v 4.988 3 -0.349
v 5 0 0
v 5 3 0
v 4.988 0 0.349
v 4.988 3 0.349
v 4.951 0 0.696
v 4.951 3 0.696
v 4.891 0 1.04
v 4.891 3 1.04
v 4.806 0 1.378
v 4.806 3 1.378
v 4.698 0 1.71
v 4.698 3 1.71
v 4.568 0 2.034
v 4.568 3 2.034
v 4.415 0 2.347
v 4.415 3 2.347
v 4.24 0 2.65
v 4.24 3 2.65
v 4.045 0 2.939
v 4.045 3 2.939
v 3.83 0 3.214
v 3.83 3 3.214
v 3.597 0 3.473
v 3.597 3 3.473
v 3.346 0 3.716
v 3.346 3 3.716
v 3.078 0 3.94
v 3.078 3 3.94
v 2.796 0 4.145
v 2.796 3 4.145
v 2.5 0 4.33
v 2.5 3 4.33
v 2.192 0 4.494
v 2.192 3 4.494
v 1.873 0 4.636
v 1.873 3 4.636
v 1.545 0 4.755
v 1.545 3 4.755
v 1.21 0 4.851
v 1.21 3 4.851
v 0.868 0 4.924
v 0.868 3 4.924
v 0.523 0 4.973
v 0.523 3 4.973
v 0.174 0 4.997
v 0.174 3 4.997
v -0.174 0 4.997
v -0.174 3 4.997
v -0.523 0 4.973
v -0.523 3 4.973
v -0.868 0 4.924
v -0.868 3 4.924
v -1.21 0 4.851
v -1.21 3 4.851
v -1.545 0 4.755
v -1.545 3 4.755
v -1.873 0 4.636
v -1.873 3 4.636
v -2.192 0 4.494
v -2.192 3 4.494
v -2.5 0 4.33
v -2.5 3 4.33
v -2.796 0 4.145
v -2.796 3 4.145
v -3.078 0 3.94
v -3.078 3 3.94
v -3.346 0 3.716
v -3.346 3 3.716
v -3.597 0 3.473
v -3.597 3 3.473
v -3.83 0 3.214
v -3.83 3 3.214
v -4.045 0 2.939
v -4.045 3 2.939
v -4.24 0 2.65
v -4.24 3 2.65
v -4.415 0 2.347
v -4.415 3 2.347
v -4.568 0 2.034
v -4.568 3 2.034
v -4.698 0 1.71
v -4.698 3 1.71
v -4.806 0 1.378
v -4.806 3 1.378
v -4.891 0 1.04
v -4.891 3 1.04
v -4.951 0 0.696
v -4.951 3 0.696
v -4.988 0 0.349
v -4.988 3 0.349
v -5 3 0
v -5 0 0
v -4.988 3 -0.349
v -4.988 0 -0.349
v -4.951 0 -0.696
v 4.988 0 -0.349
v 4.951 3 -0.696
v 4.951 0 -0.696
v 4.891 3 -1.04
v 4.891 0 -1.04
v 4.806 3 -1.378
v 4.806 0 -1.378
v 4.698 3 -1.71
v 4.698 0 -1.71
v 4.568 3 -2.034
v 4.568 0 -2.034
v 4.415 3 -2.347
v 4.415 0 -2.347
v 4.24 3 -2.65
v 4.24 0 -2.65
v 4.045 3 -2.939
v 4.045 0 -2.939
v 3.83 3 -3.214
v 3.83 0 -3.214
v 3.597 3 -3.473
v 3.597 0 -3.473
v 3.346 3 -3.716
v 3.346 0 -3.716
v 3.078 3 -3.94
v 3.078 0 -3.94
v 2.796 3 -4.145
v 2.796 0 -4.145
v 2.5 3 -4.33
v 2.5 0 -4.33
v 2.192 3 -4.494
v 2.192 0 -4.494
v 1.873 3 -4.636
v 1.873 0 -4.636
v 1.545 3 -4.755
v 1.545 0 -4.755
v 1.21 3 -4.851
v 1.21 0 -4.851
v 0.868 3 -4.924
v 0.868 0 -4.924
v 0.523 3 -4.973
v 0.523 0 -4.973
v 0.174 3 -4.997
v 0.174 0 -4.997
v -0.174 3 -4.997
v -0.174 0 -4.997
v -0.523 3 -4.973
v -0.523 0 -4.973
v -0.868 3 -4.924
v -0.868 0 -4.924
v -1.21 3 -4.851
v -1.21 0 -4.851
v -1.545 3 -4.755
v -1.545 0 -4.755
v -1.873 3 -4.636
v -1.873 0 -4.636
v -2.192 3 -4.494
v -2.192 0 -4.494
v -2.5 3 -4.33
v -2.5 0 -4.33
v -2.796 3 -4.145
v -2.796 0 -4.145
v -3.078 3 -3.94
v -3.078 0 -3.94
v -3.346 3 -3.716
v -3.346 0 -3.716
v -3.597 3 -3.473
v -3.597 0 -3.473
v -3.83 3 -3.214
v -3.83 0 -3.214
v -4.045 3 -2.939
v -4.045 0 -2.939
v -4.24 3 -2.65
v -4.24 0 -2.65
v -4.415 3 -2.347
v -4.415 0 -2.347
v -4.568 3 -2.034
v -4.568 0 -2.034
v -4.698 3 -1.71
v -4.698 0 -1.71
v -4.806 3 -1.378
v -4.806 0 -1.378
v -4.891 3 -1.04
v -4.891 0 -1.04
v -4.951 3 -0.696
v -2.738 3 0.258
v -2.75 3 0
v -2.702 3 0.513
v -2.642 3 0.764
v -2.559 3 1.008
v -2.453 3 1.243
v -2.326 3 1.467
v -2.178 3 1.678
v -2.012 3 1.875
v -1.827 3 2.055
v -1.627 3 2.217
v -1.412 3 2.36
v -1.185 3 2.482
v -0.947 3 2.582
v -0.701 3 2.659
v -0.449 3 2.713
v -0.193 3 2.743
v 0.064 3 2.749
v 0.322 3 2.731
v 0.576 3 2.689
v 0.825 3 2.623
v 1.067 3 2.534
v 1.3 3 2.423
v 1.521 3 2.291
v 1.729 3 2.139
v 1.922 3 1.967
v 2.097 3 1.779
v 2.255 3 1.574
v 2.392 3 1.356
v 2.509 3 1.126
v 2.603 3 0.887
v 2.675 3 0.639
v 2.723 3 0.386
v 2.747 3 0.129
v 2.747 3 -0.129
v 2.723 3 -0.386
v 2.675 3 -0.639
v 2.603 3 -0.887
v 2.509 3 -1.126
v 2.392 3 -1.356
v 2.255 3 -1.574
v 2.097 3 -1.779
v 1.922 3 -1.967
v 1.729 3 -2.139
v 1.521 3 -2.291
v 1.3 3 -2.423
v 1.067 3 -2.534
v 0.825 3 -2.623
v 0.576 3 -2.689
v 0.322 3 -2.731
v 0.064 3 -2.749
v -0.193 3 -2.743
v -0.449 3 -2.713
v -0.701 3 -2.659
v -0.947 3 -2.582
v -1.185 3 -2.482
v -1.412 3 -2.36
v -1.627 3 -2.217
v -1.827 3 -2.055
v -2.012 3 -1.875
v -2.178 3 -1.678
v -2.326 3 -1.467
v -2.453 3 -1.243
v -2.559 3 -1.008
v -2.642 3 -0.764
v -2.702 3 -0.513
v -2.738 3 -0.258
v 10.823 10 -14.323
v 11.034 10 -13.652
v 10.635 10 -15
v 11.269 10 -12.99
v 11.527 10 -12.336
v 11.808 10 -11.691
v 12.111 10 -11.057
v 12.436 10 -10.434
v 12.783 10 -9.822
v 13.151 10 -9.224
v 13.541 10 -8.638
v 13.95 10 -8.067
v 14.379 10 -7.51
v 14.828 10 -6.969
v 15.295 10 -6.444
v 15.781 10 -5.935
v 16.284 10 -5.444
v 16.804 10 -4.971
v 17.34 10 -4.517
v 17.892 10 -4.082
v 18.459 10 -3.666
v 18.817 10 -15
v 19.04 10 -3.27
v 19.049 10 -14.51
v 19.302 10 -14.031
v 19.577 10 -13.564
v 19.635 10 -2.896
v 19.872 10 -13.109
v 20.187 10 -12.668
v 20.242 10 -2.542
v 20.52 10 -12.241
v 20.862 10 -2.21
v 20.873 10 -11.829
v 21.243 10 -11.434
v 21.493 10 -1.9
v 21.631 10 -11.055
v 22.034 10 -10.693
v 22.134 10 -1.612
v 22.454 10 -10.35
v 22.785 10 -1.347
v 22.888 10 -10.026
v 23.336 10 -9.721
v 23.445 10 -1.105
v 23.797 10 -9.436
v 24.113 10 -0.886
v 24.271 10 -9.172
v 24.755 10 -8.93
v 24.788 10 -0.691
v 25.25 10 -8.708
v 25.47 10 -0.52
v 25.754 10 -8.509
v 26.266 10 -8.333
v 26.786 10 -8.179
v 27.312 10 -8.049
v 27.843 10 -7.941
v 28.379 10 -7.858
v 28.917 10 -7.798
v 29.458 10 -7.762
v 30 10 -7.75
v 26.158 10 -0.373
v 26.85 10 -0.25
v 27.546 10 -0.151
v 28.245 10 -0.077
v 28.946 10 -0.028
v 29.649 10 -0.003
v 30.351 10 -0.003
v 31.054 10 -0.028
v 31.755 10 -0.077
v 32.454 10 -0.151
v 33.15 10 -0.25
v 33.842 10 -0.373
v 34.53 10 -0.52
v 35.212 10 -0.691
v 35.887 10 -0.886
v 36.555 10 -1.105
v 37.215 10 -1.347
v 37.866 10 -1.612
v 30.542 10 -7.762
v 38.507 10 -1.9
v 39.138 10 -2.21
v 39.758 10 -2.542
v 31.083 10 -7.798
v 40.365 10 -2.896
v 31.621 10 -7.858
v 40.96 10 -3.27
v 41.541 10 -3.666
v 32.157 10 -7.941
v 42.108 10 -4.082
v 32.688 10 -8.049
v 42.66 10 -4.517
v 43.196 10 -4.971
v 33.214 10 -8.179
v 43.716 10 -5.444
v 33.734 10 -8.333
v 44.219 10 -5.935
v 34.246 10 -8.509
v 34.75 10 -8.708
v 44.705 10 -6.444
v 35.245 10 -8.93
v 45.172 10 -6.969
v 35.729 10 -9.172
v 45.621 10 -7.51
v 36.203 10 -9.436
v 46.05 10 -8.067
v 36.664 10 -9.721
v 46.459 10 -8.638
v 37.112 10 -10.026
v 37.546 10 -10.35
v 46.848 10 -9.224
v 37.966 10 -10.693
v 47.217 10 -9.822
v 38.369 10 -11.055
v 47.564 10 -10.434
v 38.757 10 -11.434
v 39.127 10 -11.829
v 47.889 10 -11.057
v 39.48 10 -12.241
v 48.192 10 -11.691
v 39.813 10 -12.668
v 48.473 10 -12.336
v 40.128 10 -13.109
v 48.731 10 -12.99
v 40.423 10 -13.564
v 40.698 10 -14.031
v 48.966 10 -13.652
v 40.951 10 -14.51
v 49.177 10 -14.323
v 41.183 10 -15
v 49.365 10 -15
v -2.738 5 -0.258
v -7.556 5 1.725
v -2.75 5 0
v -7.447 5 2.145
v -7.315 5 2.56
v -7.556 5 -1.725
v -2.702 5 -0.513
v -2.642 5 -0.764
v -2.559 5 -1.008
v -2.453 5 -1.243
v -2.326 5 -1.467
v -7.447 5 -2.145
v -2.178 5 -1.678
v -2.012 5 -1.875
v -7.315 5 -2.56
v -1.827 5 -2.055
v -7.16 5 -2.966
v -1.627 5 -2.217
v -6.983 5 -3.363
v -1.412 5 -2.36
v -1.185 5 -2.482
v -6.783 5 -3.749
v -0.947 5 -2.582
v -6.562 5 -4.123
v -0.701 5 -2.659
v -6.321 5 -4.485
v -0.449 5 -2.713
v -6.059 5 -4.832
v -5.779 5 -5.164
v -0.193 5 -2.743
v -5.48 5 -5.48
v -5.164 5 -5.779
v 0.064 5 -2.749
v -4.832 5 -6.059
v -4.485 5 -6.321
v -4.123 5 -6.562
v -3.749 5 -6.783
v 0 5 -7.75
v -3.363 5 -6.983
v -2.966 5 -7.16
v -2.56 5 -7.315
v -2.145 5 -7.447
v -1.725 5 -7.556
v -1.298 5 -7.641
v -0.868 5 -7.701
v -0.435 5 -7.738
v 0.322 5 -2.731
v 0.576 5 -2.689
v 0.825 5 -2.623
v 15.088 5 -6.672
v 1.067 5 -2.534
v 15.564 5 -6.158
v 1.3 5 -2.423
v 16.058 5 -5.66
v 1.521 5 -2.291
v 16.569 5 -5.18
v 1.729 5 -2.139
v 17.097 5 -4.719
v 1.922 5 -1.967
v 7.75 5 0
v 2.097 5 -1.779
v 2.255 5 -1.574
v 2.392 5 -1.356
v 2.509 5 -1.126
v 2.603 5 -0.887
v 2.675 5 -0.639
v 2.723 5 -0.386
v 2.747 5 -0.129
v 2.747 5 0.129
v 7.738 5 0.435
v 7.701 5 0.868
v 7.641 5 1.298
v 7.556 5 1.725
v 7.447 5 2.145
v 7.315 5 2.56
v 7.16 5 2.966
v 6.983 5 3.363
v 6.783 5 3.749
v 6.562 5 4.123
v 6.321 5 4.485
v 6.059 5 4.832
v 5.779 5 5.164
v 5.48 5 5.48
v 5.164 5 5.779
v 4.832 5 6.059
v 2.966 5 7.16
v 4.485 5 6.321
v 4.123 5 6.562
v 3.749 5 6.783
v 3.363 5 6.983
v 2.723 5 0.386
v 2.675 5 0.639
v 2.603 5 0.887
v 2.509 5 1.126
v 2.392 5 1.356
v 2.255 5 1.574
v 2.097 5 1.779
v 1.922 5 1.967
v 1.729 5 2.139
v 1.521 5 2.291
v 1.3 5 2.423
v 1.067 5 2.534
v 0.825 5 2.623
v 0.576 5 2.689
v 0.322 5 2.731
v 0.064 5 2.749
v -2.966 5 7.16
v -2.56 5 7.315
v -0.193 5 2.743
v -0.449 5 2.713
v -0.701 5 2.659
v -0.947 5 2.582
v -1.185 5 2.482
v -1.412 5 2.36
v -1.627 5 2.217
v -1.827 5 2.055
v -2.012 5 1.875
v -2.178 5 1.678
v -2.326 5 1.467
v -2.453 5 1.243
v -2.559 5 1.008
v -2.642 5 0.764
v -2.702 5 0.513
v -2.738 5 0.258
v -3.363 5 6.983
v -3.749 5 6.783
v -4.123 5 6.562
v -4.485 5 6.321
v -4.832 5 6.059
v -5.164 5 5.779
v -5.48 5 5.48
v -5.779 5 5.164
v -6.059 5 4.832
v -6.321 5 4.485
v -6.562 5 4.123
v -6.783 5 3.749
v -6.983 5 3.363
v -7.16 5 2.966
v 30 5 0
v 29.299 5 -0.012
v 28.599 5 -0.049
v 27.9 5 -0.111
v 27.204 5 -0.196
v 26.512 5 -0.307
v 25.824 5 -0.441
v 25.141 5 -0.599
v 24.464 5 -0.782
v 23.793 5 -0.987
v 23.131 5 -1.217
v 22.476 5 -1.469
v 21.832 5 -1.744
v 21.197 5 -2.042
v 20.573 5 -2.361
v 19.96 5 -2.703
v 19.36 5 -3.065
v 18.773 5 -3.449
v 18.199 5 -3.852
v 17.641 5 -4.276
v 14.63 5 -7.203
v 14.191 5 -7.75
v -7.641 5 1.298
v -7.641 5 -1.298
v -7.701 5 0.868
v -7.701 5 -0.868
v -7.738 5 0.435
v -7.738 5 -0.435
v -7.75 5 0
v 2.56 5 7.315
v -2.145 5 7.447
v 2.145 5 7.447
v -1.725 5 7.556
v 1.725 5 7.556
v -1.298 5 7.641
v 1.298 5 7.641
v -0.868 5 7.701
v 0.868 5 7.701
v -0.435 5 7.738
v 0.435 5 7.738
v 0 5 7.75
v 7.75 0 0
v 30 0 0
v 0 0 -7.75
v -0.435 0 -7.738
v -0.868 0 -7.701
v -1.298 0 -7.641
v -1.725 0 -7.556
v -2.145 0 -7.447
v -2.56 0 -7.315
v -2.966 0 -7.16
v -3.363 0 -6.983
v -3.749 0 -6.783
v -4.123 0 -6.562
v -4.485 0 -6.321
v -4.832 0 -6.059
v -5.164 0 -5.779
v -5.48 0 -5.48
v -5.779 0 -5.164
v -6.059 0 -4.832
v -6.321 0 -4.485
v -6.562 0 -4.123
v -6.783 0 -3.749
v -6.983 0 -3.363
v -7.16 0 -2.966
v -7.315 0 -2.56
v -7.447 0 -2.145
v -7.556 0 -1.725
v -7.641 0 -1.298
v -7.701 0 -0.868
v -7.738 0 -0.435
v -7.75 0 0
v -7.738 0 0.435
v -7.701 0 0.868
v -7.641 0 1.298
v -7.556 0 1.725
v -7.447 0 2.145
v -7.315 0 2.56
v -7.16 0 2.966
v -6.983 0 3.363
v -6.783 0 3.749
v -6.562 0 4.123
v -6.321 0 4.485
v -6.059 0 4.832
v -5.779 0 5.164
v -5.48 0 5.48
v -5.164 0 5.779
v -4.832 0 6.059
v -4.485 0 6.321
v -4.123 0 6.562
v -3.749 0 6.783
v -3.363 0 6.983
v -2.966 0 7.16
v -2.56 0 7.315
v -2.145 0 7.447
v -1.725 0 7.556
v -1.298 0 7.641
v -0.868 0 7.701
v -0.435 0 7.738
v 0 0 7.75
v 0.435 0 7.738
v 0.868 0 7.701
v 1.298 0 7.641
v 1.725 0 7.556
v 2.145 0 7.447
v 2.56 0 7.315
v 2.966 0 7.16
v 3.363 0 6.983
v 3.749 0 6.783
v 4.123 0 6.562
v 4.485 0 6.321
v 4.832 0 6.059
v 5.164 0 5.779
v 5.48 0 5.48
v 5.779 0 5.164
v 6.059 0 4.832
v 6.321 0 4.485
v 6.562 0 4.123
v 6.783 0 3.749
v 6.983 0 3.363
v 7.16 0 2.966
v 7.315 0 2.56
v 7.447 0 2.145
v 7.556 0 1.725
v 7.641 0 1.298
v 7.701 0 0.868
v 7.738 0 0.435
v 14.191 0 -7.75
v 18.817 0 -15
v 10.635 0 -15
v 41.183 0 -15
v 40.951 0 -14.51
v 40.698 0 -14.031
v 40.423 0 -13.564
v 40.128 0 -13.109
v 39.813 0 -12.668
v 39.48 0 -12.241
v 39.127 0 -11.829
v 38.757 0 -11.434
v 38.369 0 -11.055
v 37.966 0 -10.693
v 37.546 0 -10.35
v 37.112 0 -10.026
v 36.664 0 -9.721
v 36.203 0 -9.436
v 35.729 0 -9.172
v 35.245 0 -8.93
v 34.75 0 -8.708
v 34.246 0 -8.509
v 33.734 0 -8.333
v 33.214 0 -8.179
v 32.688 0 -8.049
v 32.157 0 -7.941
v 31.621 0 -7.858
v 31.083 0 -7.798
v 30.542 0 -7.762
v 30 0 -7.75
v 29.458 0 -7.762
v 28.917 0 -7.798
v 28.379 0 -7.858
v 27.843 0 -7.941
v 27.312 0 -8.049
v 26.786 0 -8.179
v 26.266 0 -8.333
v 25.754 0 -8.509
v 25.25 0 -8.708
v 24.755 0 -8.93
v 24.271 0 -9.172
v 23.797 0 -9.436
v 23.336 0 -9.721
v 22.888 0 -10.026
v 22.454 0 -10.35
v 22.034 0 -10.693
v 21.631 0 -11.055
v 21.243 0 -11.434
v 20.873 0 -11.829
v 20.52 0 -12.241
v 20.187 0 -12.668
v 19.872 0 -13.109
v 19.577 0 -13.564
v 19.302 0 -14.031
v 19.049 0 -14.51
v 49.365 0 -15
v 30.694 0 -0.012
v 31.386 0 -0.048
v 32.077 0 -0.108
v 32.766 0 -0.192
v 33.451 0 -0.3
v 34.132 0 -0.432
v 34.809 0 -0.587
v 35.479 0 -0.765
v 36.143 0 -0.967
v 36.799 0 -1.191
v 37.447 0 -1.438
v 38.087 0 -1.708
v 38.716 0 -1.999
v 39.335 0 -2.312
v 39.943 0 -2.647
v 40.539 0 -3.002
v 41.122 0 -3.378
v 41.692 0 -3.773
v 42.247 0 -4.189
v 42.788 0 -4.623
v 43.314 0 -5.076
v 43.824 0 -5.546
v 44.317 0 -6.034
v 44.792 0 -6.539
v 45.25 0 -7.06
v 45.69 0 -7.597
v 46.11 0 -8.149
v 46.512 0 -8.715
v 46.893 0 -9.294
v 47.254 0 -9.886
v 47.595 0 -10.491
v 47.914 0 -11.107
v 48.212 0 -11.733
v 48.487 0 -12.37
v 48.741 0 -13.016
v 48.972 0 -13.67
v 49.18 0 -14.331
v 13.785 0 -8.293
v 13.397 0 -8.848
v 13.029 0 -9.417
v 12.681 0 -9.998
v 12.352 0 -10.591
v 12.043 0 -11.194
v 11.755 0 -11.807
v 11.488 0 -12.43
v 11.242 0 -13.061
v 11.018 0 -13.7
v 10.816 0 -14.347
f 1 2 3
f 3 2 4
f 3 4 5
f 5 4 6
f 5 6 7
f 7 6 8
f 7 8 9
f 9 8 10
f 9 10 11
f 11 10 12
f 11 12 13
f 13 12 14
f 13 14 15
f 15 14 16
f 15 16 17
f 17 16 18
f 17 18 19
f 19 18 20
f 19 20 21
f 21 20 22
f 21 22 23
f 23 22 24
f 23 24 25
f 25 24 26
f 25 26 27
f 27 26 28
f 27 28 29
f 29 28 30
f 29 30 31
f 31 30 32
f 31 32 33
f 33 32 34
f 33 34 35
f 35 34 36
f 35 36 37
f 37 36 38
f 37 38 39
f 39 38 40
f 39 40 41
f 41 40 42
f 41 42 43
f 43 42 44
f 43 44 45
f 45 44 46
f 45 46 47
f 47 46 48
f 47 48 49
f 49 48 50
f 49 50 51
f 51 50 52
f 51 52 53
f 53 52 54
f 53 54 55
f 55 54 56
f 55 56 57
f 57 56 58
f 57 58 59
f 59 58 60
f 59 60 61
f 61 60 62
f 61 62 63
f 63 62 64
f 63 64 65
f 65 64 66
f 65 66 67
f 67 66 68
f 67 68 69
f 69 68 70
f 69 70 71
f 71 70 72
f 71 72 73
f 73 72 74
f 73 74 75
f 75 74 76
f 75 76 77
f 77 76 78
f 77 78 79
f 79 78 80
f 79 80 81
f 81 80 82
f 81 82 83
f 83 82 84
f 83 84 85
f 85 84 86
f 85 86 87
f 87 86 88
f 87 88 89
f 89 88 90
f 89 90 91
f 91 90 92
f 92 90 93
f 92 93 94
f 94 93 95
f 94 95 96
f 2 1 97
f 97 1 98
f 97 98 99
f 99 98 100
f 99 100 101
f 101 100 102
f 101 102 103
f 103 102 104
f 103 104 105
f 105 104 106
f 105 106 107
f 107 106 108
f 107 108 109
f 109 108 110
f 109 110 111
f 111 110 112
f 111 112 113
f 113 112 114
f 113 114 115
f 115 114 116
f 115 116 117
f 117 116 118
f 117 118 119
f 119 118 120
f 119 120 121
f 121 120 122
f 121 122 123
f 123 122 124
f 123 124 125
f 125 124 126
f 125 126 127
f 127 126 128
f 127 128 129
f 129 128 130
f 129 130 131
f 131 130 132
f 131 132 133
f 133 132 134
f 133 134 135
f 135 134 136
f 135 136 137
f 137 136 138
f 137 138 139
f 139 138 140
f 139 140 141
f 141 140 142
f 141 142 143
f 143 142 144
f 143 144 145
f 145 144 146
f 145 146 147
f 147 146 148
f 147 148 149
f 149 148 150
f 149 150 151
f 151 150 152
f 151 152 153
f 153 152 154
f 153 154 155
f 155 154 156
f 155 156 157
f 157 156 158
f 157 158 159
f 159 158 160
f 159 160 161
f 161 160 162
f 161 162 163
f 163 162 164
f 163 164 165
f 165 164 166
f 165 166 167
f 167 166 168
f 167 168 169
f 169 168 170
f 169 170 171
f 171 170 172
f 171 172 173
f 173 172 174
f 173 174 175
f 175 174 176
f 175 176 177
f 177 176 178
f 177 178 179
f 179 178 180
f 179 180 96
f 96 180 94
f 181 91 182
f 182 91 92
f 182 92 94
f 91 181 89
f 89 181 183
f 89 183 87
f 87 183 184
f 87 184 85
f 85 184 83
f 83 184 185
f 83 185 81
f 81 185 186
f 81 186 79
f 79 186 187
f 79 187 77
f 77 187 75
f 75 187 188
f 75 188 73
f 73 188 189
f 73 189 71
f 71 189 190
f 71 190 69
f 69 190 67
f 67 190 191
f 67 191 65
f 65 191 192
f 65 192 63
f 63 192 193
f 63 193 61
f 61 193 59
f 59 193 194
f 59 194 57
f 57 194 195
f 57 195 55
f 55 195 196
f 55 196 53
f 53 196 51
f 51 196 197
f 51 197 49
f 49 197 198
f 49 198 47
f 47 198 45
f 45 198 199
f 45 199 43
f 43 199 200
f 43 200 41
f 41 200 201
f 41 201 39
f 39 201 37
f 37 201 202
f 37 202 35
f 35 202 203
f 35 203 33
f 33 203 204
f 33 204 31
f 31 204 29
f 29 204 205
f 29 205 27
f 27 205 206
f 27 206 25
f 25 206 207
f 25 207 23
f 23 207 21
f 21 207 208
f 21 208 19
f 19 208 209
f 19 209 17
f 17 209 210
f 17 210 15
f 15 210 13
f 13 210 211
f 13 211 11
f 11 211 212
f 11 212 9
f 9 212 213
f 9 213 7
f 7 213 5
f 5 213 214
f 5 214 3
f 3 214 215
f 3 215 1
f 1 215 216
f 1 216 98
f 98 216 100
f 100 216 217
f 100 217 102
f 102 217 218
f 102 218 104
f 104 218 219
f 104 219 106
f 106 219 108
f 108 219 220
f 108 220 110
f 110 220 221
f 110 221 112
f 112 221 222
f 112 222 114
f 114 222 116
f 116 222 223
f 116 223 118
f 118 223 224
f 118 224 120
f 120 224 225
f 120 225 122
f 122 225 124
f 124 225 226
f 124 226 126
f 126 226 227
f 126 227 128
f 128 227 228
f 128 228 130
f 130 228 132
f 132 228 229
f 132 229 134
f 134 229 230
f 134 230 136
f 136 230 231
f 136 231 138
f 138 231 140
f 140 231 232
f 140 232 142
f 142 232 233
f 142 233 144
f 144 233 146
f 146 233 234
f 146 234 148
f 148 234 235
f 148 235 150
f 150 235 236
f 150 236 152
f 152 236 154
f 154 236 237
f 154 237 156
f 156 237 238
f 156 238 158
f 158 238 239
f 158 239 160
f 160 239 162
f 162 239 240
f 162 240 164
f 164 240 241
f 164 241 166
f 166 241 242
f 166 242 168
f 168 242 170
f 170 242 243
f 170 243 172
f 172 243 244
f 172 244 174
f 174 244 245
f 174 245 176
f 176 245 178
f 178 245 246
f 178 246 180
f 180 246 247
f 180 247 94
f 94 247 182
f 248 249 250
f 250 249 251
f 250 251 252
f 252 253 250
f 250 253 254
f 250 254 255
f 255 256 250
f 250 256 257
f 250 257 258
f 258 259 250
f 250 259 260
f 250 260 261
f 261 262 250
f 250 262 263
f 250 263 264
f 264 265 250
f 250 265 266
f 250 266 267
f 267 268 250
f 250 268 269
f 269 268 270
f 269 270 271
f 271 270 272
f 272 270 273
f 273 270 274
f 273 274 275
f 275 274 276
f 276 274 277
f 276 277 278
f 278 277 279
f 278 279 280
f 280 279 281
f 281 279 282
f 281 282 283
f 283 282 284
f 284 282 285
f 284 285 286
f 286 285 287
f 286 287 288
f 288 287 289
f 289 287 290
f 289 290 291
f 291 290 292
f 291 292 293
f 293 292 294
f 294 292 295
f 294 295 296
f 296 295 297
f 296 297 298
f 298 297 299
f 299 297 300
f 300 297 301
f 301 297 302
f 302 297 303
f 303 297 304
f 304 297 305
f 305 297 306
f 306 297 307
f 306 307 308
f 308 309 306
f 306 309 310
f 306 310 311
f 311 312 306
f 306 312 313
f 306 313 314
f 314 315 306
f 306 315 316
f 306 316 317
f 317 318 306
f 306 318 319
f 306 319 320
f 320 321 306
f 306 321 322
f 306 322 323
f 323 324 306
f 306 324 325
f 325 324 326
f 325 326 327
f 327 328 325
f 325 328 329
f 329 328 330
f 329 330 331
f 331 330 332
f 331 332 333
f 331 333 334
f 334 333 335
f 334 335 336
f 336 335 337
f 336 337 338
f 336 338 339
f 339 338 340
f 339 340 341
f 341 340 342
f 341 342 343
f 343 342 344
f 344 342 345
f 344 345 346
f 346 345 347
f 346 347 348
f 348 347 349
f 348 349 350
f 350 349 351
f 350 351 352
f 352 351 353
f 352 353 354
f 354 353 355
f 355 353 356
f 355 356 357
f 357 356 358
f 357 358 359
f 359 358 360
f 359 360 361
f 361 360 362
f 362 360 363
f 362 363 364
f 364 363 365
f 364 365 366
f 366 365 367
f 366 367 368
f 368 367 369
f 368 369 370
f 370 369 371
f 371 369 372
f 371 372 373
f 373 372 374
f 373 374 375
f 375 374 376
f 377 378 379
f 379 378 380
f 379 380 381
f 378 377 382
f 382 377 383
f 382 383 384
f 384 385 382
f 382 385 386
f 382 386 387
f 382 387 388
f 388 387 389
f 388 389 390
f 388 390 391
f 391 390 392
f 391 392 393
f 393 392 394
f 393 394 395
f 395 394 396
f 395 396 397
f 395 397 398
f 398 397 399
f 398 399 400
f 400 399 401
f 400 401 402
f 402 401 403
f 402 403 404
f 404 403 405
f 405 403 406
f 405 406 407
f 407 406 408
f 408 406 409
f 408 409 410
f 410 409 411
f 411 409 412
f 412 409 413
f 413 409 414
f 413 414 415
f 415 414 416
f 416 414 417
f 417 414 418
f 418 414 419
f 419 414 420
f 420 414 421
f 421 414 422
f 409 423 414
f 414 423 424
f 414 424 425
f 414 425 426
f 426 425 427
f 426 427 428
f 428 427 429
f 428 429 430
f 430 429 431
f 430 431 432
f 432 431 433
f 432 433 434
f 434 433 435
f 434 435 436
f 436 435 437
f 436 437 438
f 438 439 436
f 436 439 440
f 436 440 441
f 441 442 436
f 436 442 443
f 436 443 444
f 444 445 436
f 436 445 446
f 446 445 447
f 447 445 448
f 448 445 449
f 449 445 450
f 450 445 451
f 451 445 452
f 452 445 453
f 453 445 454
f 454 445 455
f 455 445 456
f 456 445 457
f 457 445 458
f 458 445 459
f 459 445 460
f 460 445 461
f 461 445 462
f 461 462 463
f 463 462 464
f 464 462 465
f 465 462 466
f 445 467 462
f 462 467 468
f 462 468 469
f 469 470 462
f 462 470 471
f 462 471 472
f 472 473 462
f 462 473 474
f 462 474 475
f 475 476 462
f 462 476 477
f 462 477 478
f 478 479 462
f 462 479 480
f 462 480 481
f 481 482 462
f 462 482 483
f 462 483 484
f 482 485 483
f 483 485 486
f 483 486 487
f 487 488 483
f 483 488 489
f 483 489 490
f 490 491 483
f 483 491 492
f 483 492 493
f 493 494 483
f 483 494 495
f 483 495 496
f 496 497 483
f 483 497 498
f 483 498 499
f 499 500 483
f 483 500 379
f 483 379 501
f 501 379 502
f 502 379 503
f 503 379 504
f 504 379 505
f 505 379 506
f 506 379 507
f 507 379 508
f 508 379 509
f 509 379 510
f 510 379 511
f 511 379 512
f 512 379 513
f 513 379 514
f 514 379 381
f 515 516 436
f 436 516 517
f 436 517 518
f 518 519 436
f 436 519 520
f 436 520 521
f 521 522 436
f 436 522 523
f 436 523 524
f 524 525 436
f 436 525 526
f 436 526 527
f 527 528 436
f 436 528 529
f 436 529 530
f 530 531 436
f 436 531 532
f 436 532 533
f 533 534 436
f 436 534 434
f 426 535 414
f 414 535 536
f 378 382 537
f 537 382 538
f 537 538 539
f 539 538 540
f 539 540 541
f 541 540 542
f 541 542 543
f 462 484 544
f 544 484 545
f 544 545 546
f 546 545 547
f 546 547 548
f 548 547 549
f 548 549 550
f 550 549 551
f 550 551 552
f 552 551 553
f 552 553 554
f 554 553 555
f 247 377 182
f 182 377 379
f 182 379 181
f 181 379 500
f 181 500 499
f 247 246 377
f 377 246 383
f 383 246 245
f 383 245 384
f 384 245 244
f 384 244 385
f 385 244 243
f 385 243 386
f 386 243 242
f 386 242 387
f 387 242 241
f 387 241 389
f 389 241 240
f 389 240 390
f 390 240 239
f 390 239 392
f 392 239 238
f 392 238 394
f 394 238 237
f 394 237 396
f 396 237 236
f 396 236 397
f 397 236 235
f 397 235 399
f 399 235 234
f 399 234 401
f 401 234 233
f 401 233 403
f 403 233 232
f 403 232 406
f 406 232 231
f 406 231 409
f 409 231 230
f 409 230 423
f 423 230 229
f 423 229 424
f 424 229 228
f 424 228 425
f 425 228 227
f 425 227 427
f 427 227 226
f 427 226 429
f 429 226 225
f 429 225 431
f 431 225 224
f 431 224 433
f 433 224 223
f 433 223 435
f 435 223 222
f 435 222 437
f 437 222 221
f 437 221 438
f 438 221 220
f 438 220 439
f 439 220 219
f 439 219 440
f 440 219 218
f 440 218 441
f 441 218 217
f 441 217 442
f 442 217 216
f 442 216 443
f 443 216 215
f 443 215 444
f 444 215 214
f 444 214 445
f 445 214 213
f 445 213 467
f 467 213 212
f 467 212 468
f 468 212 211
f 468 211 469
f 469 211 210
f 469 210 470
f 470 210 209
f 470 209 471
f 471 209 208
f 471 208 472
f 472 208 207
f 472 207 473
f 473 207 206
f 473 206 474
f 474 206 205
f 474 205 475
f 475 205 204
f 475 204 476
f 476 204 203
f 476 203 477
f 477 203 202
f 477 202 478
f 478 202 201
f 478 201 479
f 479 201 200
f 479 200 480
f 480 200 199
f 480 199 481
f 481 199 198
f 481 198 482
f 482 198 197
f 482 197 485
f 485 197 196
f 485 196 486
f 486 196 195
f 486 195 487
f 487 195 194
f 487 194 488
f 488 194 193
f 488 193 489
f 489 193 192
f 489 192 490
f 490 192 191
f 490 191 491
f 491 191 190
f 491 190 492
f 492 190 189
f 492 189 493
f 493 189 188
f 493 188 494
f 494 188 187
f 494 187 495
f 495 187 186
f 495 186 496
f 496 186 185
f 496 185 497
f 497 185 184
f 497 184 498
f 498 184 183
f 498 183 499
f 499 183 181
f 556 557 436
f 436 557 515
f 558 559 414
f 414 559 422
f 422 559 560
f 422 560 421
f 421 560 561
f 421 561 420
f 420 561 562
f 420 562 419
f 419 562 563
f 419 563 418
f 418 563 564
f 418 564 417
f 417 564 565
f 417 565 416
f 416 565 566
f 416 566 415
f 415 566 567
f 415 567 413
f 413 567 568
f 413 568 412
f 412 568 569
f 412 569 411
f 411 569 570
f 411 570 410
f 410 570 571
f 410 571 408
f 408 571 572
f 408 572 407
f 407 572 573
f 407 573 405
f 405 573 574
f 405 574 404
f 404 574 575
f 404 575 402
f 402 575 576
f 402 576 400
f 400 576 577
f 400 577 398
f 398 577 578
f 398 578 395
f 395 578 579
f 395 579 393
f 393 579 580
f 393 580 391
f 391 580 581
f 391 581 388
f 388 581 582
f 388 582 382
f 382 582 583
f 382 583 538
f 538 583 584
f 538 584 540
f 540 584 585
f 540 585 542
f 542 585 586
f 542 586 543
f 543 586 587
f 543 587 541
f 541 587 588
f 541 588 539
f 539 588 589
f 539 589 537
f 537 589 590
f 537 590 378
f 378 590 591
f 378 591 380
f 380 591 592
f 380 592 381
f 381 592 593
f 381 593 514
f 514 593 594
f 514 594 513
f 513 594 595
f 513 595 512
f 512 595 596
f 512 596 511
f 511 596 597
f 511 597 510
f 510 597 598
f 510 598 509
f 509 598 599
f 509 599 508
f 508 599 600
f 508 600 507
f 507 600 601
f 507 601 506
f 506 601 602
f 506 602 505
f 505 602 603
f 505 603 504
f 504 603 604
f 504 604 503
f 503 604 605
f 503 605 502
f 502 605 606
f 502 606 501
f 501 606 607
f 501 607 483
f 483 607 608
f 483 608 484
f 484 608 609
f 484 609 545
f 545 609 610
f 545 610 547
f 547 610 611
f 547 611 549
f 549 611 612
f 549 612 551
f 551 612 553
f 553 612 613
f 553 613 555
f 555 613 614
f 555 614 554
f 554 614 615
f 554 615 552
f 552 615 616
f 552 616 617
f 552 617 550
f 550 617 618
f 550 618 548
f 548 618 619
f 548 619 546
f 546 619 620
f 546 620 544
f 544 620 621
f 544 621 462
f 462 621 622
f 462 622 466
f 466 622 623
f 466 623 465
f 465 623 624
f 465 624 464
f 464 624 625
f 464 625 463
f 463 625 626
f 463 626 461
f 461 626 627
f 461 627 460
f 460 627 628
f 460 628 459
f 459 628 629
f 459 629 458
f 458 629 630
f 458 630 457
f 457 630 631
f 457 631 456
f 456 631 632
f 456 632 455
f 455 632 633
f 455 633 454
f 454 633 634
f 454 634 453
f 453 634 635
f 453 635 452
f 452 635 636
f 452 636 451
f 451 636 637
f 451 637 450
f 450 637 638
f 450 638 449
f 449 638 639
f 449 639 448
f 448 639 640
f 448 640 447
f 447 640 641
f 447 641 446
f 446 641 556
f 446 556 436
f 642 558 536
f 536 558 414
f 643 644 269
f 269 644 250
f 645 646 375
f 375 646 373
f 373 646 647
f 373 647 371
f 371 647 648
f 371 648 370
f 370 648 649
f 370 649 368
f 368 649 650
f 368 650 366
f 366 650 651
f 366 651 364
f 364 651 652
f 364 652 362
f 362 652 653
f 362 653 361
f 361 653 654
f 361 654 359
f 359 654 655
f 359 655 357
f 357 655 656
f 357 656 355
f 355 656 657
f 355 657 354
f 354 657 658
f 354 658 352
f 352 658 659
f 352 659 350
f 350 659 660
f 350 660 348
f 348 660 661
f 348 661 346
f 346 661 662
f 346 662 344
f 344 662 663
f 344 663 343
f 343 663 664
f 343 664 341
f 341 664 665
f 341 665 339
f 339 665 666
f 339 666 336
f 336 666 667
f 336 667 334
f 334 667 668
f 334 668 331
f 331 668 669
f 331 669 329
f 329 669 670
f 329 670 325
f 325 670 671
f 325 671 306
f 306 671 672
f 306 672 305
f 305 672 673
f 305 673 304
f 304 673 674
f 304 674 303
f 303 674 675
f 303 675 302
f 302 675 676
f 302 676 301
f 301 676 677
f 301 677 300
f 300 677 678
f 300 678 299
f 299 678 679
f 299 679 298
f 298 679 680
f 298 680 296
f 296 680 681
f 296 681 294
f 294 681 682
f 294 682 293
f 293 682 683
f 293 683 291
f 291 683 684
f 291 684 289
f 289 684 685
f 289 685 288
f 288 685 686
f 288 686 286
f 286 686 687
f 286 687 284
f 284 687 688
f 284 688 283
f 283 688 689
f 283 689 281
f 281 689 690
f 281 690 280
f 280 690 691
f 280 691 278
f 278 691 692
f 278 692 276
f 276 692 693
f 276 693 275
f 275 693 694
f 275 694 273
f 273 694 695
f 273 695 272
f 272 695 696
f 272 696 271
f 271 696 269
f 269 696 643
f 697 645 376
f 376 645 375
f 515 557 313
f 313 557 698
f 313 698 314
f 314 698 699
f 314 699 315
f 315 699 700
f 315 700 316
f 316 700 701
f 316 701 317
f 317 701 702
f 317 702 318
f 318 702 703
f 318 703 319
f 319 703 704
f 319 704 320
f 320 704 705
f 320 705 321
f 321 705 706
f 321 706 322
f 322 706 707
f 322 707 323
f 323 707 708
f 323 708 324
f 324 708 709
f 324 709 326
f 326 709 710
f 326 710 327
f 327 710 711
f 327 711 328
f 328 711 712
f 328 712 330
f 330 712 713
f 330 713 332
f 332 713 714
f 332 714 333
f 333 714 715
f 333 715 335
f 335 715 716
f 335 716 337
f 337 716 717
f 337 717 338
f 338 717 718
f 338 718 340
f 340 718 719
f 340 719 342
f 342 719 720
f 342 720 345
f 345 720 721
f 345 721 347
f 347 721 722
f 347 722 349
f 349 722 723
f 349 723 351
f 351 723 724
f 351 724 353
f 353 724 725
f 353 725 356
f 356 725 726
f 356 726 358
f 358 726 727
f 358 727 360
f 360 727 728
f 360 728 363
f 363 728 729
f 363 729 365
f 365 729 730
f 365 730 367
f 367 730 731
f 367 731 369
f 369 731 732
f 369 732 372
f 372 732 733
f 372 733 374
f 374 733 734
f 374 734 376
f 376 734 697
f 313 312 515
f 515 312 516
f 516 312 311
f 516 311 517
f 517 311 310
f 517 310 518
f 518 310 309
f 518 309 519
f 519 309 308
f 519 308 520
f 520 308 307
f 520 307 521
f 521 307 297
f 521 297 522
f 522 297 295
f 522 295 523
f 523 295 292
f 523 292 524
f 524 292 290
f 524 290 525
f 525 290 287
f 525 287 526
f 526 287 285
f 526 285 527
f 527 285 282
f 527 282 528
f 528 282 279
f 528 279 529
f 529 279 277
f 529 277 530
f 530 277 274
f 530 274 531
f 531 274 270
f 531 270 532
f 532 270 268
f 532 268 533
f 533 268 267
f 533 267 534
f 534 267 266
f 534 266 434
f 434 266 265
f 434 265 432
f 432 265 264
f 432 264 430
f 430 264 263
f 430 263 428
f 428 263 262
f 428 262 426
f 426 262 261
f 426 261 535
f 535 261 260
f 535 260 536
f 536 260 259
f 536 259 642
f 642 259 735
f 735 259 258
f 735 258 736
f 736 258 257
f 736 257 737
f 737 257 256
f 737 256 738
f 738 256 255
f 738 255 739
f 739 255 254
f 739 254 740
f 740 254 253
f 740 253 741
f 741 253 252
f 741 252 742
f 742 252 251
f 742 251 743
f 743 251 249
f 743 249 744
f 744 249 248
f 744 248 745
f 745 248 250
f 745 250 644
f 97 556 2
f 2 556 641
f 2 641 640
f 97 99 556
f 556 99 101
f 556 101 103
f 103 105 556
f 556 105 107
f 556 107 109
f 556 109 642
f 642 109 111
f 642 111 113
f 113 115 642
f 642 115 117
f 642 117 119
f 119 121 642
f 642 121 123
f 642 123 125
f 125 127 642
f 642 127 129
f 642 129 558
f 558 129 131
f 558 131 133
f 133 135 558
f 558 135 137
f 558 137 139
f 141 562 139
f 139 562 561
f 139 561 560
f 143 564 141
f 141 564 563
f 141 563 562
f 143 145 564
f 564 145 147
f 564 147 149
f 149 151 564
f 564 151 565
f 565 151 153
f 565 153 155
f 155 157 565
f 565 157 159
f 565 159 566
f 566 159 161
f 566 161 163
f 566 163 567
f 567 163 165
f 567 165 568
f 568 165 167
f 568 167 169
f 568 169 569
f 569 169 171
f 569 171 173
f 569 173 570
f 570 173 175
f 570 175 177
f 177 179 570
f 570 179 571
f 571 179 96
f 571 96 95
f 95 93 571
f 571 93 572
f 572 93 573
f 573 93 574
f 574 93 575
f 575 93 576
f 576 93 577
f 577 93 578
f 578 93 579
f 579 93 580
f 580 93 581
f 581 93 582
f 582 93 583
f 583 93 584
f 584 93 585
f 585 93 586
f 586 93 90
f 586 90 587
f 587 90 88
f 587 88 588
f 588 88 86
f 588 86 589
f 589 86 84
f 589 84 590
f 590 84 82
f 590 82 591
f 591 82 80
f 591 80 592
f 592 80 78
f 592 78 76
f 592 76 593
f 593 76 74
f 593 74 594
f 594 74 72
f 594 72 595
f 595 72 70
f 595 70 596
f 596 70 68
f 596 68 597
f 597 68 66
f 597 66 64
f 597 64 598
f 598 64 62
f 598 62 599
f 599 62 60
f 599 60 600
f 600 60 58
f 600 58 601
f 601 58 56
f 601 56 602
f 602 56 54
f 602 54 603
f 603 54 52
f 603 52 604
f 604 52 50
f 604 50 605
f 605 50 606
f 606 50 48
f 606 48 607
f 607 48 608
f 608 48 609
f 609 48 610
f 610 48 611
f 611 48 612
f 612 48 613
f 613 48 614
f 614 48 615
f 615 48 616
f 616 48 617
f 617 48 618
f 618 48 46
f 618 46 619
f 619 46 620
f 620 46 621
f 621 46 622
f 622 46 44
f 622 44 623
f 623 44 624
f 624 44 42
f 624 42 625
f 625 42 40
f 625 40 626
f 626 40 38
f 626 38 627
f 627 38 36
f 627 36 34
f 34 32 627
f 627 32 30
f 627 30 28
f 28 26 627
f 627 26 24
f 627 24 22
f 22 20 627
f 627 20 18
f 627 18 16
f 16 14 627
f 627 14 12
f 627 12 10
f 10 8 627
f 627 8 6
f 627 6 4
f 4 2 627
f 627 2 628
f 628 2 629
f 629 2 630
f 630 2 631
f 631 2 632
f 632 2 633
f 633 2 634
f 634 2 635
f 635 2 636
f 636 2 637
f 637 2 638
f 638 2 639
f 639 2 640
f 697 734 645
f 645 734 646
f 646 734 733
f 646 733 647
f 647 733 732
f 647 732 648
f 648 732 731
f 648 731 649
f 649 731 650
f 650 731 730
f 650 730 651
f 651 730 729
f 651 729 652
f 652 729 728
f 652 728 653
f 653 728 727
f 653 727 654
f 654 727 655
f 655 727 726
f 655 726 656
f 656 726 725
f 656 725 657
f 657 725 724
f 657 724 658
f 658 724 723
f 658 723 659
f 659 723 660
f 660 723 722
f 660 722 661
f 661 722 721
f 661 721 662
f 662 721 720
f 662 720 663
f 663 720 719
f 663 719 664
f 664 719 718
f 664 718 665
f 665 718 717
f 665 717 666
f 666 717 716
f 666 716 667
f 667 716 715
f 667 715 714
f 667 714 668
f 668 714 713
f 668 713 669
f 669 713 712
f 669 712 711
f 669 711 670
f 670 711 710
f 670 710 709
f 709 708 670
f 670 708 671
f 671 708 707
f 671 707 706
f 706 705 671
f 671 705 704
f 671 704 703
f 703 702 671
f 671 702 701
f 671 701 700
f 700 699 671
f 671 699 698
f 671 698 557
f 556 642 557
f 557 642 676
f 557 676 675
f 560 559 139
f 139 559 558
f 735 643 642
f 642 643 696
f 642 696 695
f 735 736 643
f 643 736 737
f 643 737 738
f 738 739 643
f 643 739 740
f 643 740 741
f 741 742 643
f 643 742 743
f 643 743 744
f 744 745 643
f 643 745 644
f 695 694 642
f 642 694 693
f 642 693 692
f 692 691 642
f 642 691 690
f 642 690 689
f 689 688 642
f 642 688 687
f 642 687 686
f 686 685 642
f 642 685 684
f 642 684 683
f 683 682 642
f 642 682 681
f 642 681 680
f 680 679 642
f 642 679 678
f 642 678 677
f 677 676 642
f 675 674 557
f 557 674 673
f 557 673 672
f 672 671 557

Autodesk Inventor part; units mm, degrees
ref_plane "YZ Plane" through (0, 0, 0) normal (1, 0, 0) x (0, 1, 0)
ref_plane "XZ Plane" through (0, 0, 0) normal (0, 1, 0) x (-1, 0, 0)
ref_plane "XY Plane" through (0, 0, 0) normal (0, 0, 1) x (1, 0, 0)
sketch "Sketch1" plane through (0, 0, 0) normal (0, 1, 0) x (-1, 0, 0)
  circle A0 centre (0, 0) radius 2.75
  arc A1 (0, -7.75) -> (-7.75, 0) centre (0, 0) ccw
  line L0 (0, 0) -> (-30, 0)
  line L1 (0, -7.75) -> (-14.1906, -7.75)
  line L2 (-30, 0) -> (-30, -20) construction
  arc A2 (-18.8169, -15) -> (-41.1831, -15) centre (-30, -20) ccw
  line L3 (-30, 0) -> (-30, -15) construction
  line L4 (-41.1831, -15) -> (-49.3649, -15)
  line L5 (-18.8169, -15) -> (-10.6351, -15)
  arc A3 (-10.6351, -15) -> (-14.1906, -7.75) centre (-30, -20) ccw
  arc A4 (-30, 0) -> (-49.3649, -15) centre (-30, -20) ccw
  dimension "d0" = 5.5
  dimension "d1" = 5
  dimension "d2" = 30
  dimension "d3" = 20
  dimension "d4" = 15
extrude "Extrusion1" add sketch "Sketch1" along normal blind 5
sketch "Sketch2" plane through (0, 5, 0) normal (0, 1, 0) x (1, 0, 0)
  arc A0 (18.8169, 15) -> (41.1831, 15) centre (30, 20) ccw projected
  circle A1 centre (30, 20) radius 12.25
  line L0 (7.75, 0) -> (30, 0) projected
  circle A2 centre (30, 20) radius 20
  line L1 (49.3649, 15) -> (41.1831, 15) projected
  line L2 (49.3649, 15) -> (10.6351, 15)
  point P0 (0, 0)
extrude "Extrusion2" add sketch "Sketch2" along normal blind 5 contours A0 L1 A2 L2
sketch "Sketch3" plane through (0, 0, 0) normal (0, -1, 0) x (1, 0, 0)
  circle A0 centre (0, 0) radius 5
  dimension "d9" = 10
extrude "Extrusion3" cut sketch "Sketch3" against normal blind 3
properties part number "CameraMount" material "ABS Plastic"
